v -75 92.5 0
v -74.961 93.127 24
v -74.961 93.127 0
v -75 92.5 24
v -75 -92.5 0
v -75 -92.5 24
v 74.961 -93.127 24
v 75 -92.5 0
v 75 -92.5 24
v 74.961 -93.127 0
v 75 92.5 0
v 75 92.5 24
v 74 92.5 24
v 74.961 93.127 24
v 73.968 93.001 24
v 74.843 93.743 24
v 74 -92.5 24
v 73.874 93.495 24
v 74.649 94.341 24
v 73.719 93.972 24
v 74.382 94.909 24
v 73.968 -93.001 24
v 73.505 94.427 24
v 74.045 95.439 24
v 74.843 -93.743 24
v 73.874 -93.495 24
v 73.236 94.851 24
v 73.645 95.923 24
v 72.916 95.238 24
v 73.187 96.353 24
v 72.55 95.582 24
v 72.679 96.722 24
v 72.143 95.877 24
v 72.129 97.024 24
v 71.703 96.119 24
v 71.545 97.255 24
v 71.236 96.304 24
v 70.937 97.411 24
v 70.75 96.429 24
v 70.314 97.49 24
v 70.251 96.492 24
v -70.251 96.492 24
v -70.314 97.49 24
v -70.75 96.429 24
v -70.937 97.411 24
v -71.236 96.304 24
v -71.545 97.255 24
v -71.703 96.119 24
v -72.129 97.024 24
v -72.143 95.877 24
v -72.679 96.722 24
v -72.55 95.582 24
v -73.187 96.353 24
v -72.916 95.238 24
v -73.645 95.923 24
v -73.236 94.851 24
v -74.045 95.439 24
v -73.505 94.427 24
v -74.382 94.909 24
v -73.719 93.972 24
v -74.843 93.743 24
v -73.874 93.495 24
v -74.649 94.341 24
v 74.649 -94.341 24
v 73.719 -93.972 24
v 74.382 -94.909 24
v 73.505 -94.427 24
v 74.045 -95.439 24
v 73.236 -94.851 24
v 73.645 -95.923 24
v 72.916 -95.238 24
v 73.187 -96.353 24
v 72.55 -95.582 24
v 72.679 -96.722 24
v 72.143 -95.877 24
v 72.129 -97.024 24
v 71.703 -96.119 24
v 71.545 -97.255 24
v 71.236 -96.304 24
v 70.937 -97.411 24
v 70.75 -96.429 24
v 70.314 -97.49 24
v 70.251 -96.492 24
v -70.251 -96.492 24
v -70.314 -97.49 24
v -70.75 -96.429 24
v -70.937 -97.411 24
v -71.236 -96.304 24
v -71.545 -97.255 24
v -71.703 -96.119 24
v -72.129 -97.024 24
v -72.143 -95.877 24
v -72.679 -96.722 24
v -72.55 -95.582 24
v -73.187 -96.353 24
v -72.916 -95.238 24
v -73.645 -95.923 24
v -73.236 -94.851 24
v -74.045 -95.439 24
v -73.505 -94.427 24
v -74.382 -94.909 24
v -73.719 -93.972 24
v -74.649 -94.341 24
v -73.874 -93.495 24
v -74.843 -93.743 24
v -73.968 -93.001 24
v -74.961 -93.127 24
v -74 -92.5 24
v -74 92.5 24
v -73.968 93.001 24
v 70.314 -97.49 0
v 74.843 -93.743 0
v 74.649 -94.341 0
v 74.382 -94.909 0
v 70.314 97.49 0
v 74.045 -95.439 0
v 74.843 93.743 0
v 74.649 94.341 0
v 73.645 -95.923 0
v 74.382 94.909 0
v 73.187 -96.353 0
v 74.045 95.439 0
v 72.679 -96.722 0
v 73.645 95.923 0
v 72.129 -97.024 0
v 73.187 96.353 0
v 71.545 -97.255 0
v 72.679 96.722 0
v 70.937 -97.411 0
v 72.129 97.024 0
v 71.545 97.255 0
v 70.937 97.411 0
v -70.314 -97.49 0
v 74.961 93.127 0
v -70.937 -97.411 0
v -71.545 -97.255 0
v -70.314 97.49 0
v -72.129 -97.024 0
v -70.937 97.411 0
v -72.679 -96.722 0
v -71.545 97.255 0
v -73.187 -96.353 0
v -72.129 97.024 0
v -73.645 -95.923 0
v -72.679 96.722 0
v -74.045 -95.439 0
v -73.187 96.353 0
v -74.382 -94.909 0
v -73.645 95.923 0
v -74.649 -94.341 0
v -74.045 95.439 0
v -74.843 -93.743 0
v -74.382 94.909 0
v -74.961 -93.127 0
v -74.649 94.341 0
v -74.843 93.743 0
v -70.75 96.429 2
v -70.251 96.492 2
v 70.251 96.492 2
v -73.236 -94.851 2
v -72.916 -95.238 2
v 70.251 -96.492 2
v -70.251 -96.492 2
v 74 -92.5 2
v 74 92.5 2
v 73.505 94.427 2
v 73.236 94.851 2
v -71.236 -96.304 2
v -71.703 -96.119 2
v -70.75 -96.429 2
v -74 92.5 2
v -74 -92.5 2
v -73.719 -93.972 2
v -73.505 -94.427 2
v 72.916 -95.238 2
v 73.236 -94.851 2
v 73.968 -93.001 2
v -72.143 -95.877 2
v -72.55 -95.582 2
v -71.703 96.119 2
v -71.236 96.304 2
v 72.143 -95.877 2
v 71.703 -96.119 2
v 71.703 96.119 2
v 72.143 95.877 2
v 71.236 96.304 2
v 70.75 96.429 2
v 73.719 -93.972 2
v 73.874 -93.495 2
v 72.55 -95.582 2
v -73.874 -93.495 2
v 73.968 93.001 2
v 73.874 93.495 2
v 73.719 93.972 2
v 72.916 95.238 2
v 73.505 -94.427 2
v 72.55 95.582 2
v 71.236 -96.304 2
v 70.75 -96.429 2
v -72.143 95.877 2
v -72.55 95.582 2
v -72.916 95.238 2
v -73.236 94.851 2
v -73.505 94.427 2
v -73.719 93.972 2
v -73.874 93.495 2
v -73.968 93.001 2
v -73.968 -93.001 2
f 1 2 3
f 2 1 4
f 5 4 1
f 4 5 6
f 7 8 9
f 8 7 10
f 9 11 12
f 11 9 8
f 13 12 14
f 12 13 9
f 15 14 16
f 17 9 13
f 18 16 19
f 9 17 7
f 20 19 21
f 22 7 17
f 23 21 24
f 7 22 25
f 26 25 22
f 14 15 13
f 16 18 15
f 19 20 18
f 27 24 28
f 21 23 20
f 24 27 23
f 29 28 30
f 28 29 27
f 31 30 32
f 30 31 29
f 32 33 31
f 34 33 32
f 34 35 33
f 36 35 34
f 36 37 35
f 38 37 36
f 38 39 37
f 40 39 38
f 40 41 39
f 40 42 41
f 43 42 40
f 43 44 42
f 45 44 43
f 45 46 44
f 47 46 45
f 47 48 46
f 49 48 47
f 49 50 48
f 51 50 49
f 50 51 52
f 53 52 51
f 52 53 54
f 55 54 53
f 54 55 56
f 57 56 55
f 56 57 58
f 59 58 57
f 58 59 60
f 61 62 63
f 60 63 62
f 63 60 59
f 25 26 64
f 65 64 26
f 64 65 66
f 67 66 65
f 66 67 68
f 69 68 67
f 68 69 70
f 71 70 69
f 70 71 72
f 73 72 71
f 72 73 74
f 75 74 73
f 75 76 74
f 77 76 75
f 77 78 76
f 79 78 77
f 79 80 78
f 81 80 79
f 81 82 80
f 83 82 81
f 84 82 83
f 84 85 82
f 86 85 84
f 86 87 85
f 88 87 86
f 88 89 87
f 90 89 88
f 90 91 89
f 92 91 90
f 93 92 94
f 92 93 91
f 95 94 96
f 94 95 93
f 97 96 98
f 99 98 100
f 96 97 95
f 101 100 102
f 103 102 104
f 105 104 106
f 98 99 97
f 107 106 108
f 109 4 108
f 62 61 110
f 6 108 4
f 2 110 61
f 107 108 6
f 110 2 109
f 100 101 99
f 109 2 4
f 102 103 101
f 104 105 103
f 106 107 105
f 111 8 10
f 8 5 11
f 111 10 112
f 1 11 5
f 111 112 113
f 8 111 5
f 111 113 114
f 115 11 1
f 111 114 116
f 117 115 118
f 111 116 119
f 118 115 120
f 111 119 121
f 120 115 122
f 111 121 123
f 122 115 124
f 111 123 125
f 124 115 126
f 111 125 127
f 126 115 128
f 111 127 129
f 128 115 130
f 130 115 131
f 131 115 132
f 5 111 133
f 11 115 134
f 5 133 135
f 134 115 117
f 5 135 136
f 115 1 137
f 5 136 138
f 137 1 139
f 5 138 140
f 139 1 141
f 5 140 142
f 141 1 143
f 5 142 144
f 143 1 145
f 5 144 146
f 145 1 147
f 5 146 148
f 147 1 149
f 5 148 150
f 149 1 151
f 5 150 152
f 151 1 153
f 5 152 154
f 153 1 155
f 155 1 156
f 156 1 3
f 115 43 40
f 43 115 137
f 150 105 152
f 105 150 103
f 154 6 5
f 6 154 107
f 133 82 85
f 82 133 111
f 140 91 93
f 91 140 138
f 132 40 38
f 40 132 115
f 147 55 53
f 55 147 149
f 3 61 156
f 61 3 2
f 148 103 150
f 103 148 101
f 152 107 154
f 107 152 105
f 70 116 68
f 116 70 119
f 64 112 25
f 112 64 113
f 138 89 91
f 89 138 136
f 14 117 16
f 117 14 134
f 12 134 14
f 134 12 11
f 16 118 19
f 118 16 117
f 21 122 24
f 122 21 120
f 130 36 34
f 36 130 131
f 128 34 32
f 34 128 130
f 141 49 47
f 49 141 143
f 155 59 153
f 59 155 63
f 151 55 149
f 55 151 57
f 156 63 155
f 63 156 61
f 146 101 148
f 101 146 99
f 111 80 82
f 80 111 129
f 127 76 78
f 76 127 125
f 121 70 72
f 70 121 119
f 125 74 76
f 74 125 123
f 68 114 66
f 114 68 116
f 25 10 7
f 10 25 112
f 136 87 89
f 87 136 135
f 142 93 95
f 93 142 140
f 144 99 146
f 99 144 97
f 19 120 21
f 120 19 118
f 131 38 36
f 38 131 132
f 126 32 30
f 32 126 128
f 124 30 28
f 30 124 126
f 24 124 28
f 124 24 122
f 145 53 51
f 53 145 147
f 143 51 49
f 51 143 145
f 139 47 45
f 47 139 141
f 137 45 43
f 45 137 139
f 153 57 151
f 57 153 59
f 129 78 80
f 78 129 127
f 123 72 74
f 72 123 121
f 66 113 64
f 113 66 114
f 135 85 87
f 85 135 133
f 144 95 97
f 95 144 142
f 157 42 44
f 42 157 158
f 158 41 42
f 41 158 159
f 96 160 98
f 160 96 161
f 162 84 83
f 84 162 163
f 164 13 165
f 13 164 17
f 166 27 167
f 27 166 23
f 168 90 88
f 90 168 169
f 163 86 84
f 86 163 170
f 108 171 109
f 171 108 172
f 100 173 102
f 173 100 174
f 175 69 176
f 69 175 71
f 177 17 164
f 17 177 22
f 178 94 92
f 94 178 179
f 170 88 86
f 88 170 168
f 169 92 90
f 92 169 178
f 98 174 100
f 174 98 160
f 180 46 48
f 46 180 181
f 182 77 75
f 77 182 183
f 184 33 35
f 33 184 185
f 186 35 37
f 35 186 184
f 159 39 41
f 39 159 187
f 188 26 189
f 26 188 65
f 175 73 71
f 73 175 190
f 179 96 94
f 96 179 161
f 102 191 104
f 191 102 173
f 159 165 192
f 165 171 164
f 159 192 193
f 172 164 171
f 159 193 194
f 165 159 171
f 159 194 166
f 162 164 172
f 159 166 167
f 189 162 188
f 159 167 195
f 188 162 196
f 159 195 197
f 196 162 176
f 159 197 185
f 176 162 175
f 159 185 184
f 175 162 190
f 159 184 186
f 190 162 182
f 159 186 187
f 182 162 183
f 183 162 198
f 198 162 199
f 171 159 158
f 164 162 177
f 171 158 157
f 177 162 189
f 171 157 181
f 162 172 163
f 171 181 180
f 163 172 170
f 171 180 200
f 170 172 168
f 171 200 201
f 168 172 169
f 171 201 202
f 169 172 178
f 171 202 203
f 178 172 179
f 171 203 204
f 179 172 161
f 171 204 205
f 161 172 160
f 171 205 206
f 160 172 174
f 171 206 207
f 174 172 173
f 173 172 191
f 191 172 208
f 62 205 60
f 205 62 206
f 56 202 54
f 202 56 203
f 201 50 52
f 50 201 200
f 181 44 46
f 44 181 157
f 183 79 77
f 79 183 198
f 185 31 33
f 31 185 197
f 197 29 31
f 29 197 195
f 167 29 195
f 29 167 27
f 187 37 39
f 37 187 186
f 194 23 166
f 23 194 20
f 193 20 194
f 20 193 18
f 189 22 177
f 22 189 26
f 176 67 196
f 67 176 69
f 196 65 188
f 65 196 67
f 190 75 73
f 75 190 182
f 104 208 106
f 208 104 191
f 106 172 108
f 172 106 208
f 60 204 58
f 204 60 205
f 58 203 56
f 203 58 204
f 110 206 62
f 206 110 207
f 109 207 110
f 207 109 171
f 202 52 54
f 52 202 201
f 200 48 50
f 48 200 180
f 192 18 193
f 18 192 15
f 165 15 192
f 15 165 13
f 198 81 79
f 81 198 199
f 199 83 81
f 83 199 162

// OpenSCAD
$fn = 50;


difference() {
	union() {
		hull() {
			translate(v = [-70.0000000000, 92.5000000000, 0]) {
				cylinder(h = 24, r = 5);
			}
			translate(v = [70.0000000000, 92.5000000000, 0]) {
				cylinder(h = 24, r = 5);
			}
			translate(v = [-70.0000000000, -92.5000000000, 0]) {
				cylinder(h = 24, r = 5);
			}
			translate(v = [70.0000000000, -92.5000000000, 0]) {
				cylinder(h = 24, r = 5);
			}
		}
	}
	union() {
		translate(v = [0, 0, 2]) {
			hull() {
				translate(v = [-70.0000000000, 92.5000000000, 0]) {
					cylinder(h = 22, r = 4);
				}
				translate(v = [70.0000000000, 92.5000000000, 0]) {
					cylinder(h = 22, r = 4);
				}
				translate(v = [-70.0000000000, -92.5000000000, 0]) {
					cylinder(h = 22, r = 4);
				}
				translate(v = [70.0000000000, -92.5000000000, 0]) {
					cylinder(h = 22, r = 4);
				}
			}
		}
	}
}
